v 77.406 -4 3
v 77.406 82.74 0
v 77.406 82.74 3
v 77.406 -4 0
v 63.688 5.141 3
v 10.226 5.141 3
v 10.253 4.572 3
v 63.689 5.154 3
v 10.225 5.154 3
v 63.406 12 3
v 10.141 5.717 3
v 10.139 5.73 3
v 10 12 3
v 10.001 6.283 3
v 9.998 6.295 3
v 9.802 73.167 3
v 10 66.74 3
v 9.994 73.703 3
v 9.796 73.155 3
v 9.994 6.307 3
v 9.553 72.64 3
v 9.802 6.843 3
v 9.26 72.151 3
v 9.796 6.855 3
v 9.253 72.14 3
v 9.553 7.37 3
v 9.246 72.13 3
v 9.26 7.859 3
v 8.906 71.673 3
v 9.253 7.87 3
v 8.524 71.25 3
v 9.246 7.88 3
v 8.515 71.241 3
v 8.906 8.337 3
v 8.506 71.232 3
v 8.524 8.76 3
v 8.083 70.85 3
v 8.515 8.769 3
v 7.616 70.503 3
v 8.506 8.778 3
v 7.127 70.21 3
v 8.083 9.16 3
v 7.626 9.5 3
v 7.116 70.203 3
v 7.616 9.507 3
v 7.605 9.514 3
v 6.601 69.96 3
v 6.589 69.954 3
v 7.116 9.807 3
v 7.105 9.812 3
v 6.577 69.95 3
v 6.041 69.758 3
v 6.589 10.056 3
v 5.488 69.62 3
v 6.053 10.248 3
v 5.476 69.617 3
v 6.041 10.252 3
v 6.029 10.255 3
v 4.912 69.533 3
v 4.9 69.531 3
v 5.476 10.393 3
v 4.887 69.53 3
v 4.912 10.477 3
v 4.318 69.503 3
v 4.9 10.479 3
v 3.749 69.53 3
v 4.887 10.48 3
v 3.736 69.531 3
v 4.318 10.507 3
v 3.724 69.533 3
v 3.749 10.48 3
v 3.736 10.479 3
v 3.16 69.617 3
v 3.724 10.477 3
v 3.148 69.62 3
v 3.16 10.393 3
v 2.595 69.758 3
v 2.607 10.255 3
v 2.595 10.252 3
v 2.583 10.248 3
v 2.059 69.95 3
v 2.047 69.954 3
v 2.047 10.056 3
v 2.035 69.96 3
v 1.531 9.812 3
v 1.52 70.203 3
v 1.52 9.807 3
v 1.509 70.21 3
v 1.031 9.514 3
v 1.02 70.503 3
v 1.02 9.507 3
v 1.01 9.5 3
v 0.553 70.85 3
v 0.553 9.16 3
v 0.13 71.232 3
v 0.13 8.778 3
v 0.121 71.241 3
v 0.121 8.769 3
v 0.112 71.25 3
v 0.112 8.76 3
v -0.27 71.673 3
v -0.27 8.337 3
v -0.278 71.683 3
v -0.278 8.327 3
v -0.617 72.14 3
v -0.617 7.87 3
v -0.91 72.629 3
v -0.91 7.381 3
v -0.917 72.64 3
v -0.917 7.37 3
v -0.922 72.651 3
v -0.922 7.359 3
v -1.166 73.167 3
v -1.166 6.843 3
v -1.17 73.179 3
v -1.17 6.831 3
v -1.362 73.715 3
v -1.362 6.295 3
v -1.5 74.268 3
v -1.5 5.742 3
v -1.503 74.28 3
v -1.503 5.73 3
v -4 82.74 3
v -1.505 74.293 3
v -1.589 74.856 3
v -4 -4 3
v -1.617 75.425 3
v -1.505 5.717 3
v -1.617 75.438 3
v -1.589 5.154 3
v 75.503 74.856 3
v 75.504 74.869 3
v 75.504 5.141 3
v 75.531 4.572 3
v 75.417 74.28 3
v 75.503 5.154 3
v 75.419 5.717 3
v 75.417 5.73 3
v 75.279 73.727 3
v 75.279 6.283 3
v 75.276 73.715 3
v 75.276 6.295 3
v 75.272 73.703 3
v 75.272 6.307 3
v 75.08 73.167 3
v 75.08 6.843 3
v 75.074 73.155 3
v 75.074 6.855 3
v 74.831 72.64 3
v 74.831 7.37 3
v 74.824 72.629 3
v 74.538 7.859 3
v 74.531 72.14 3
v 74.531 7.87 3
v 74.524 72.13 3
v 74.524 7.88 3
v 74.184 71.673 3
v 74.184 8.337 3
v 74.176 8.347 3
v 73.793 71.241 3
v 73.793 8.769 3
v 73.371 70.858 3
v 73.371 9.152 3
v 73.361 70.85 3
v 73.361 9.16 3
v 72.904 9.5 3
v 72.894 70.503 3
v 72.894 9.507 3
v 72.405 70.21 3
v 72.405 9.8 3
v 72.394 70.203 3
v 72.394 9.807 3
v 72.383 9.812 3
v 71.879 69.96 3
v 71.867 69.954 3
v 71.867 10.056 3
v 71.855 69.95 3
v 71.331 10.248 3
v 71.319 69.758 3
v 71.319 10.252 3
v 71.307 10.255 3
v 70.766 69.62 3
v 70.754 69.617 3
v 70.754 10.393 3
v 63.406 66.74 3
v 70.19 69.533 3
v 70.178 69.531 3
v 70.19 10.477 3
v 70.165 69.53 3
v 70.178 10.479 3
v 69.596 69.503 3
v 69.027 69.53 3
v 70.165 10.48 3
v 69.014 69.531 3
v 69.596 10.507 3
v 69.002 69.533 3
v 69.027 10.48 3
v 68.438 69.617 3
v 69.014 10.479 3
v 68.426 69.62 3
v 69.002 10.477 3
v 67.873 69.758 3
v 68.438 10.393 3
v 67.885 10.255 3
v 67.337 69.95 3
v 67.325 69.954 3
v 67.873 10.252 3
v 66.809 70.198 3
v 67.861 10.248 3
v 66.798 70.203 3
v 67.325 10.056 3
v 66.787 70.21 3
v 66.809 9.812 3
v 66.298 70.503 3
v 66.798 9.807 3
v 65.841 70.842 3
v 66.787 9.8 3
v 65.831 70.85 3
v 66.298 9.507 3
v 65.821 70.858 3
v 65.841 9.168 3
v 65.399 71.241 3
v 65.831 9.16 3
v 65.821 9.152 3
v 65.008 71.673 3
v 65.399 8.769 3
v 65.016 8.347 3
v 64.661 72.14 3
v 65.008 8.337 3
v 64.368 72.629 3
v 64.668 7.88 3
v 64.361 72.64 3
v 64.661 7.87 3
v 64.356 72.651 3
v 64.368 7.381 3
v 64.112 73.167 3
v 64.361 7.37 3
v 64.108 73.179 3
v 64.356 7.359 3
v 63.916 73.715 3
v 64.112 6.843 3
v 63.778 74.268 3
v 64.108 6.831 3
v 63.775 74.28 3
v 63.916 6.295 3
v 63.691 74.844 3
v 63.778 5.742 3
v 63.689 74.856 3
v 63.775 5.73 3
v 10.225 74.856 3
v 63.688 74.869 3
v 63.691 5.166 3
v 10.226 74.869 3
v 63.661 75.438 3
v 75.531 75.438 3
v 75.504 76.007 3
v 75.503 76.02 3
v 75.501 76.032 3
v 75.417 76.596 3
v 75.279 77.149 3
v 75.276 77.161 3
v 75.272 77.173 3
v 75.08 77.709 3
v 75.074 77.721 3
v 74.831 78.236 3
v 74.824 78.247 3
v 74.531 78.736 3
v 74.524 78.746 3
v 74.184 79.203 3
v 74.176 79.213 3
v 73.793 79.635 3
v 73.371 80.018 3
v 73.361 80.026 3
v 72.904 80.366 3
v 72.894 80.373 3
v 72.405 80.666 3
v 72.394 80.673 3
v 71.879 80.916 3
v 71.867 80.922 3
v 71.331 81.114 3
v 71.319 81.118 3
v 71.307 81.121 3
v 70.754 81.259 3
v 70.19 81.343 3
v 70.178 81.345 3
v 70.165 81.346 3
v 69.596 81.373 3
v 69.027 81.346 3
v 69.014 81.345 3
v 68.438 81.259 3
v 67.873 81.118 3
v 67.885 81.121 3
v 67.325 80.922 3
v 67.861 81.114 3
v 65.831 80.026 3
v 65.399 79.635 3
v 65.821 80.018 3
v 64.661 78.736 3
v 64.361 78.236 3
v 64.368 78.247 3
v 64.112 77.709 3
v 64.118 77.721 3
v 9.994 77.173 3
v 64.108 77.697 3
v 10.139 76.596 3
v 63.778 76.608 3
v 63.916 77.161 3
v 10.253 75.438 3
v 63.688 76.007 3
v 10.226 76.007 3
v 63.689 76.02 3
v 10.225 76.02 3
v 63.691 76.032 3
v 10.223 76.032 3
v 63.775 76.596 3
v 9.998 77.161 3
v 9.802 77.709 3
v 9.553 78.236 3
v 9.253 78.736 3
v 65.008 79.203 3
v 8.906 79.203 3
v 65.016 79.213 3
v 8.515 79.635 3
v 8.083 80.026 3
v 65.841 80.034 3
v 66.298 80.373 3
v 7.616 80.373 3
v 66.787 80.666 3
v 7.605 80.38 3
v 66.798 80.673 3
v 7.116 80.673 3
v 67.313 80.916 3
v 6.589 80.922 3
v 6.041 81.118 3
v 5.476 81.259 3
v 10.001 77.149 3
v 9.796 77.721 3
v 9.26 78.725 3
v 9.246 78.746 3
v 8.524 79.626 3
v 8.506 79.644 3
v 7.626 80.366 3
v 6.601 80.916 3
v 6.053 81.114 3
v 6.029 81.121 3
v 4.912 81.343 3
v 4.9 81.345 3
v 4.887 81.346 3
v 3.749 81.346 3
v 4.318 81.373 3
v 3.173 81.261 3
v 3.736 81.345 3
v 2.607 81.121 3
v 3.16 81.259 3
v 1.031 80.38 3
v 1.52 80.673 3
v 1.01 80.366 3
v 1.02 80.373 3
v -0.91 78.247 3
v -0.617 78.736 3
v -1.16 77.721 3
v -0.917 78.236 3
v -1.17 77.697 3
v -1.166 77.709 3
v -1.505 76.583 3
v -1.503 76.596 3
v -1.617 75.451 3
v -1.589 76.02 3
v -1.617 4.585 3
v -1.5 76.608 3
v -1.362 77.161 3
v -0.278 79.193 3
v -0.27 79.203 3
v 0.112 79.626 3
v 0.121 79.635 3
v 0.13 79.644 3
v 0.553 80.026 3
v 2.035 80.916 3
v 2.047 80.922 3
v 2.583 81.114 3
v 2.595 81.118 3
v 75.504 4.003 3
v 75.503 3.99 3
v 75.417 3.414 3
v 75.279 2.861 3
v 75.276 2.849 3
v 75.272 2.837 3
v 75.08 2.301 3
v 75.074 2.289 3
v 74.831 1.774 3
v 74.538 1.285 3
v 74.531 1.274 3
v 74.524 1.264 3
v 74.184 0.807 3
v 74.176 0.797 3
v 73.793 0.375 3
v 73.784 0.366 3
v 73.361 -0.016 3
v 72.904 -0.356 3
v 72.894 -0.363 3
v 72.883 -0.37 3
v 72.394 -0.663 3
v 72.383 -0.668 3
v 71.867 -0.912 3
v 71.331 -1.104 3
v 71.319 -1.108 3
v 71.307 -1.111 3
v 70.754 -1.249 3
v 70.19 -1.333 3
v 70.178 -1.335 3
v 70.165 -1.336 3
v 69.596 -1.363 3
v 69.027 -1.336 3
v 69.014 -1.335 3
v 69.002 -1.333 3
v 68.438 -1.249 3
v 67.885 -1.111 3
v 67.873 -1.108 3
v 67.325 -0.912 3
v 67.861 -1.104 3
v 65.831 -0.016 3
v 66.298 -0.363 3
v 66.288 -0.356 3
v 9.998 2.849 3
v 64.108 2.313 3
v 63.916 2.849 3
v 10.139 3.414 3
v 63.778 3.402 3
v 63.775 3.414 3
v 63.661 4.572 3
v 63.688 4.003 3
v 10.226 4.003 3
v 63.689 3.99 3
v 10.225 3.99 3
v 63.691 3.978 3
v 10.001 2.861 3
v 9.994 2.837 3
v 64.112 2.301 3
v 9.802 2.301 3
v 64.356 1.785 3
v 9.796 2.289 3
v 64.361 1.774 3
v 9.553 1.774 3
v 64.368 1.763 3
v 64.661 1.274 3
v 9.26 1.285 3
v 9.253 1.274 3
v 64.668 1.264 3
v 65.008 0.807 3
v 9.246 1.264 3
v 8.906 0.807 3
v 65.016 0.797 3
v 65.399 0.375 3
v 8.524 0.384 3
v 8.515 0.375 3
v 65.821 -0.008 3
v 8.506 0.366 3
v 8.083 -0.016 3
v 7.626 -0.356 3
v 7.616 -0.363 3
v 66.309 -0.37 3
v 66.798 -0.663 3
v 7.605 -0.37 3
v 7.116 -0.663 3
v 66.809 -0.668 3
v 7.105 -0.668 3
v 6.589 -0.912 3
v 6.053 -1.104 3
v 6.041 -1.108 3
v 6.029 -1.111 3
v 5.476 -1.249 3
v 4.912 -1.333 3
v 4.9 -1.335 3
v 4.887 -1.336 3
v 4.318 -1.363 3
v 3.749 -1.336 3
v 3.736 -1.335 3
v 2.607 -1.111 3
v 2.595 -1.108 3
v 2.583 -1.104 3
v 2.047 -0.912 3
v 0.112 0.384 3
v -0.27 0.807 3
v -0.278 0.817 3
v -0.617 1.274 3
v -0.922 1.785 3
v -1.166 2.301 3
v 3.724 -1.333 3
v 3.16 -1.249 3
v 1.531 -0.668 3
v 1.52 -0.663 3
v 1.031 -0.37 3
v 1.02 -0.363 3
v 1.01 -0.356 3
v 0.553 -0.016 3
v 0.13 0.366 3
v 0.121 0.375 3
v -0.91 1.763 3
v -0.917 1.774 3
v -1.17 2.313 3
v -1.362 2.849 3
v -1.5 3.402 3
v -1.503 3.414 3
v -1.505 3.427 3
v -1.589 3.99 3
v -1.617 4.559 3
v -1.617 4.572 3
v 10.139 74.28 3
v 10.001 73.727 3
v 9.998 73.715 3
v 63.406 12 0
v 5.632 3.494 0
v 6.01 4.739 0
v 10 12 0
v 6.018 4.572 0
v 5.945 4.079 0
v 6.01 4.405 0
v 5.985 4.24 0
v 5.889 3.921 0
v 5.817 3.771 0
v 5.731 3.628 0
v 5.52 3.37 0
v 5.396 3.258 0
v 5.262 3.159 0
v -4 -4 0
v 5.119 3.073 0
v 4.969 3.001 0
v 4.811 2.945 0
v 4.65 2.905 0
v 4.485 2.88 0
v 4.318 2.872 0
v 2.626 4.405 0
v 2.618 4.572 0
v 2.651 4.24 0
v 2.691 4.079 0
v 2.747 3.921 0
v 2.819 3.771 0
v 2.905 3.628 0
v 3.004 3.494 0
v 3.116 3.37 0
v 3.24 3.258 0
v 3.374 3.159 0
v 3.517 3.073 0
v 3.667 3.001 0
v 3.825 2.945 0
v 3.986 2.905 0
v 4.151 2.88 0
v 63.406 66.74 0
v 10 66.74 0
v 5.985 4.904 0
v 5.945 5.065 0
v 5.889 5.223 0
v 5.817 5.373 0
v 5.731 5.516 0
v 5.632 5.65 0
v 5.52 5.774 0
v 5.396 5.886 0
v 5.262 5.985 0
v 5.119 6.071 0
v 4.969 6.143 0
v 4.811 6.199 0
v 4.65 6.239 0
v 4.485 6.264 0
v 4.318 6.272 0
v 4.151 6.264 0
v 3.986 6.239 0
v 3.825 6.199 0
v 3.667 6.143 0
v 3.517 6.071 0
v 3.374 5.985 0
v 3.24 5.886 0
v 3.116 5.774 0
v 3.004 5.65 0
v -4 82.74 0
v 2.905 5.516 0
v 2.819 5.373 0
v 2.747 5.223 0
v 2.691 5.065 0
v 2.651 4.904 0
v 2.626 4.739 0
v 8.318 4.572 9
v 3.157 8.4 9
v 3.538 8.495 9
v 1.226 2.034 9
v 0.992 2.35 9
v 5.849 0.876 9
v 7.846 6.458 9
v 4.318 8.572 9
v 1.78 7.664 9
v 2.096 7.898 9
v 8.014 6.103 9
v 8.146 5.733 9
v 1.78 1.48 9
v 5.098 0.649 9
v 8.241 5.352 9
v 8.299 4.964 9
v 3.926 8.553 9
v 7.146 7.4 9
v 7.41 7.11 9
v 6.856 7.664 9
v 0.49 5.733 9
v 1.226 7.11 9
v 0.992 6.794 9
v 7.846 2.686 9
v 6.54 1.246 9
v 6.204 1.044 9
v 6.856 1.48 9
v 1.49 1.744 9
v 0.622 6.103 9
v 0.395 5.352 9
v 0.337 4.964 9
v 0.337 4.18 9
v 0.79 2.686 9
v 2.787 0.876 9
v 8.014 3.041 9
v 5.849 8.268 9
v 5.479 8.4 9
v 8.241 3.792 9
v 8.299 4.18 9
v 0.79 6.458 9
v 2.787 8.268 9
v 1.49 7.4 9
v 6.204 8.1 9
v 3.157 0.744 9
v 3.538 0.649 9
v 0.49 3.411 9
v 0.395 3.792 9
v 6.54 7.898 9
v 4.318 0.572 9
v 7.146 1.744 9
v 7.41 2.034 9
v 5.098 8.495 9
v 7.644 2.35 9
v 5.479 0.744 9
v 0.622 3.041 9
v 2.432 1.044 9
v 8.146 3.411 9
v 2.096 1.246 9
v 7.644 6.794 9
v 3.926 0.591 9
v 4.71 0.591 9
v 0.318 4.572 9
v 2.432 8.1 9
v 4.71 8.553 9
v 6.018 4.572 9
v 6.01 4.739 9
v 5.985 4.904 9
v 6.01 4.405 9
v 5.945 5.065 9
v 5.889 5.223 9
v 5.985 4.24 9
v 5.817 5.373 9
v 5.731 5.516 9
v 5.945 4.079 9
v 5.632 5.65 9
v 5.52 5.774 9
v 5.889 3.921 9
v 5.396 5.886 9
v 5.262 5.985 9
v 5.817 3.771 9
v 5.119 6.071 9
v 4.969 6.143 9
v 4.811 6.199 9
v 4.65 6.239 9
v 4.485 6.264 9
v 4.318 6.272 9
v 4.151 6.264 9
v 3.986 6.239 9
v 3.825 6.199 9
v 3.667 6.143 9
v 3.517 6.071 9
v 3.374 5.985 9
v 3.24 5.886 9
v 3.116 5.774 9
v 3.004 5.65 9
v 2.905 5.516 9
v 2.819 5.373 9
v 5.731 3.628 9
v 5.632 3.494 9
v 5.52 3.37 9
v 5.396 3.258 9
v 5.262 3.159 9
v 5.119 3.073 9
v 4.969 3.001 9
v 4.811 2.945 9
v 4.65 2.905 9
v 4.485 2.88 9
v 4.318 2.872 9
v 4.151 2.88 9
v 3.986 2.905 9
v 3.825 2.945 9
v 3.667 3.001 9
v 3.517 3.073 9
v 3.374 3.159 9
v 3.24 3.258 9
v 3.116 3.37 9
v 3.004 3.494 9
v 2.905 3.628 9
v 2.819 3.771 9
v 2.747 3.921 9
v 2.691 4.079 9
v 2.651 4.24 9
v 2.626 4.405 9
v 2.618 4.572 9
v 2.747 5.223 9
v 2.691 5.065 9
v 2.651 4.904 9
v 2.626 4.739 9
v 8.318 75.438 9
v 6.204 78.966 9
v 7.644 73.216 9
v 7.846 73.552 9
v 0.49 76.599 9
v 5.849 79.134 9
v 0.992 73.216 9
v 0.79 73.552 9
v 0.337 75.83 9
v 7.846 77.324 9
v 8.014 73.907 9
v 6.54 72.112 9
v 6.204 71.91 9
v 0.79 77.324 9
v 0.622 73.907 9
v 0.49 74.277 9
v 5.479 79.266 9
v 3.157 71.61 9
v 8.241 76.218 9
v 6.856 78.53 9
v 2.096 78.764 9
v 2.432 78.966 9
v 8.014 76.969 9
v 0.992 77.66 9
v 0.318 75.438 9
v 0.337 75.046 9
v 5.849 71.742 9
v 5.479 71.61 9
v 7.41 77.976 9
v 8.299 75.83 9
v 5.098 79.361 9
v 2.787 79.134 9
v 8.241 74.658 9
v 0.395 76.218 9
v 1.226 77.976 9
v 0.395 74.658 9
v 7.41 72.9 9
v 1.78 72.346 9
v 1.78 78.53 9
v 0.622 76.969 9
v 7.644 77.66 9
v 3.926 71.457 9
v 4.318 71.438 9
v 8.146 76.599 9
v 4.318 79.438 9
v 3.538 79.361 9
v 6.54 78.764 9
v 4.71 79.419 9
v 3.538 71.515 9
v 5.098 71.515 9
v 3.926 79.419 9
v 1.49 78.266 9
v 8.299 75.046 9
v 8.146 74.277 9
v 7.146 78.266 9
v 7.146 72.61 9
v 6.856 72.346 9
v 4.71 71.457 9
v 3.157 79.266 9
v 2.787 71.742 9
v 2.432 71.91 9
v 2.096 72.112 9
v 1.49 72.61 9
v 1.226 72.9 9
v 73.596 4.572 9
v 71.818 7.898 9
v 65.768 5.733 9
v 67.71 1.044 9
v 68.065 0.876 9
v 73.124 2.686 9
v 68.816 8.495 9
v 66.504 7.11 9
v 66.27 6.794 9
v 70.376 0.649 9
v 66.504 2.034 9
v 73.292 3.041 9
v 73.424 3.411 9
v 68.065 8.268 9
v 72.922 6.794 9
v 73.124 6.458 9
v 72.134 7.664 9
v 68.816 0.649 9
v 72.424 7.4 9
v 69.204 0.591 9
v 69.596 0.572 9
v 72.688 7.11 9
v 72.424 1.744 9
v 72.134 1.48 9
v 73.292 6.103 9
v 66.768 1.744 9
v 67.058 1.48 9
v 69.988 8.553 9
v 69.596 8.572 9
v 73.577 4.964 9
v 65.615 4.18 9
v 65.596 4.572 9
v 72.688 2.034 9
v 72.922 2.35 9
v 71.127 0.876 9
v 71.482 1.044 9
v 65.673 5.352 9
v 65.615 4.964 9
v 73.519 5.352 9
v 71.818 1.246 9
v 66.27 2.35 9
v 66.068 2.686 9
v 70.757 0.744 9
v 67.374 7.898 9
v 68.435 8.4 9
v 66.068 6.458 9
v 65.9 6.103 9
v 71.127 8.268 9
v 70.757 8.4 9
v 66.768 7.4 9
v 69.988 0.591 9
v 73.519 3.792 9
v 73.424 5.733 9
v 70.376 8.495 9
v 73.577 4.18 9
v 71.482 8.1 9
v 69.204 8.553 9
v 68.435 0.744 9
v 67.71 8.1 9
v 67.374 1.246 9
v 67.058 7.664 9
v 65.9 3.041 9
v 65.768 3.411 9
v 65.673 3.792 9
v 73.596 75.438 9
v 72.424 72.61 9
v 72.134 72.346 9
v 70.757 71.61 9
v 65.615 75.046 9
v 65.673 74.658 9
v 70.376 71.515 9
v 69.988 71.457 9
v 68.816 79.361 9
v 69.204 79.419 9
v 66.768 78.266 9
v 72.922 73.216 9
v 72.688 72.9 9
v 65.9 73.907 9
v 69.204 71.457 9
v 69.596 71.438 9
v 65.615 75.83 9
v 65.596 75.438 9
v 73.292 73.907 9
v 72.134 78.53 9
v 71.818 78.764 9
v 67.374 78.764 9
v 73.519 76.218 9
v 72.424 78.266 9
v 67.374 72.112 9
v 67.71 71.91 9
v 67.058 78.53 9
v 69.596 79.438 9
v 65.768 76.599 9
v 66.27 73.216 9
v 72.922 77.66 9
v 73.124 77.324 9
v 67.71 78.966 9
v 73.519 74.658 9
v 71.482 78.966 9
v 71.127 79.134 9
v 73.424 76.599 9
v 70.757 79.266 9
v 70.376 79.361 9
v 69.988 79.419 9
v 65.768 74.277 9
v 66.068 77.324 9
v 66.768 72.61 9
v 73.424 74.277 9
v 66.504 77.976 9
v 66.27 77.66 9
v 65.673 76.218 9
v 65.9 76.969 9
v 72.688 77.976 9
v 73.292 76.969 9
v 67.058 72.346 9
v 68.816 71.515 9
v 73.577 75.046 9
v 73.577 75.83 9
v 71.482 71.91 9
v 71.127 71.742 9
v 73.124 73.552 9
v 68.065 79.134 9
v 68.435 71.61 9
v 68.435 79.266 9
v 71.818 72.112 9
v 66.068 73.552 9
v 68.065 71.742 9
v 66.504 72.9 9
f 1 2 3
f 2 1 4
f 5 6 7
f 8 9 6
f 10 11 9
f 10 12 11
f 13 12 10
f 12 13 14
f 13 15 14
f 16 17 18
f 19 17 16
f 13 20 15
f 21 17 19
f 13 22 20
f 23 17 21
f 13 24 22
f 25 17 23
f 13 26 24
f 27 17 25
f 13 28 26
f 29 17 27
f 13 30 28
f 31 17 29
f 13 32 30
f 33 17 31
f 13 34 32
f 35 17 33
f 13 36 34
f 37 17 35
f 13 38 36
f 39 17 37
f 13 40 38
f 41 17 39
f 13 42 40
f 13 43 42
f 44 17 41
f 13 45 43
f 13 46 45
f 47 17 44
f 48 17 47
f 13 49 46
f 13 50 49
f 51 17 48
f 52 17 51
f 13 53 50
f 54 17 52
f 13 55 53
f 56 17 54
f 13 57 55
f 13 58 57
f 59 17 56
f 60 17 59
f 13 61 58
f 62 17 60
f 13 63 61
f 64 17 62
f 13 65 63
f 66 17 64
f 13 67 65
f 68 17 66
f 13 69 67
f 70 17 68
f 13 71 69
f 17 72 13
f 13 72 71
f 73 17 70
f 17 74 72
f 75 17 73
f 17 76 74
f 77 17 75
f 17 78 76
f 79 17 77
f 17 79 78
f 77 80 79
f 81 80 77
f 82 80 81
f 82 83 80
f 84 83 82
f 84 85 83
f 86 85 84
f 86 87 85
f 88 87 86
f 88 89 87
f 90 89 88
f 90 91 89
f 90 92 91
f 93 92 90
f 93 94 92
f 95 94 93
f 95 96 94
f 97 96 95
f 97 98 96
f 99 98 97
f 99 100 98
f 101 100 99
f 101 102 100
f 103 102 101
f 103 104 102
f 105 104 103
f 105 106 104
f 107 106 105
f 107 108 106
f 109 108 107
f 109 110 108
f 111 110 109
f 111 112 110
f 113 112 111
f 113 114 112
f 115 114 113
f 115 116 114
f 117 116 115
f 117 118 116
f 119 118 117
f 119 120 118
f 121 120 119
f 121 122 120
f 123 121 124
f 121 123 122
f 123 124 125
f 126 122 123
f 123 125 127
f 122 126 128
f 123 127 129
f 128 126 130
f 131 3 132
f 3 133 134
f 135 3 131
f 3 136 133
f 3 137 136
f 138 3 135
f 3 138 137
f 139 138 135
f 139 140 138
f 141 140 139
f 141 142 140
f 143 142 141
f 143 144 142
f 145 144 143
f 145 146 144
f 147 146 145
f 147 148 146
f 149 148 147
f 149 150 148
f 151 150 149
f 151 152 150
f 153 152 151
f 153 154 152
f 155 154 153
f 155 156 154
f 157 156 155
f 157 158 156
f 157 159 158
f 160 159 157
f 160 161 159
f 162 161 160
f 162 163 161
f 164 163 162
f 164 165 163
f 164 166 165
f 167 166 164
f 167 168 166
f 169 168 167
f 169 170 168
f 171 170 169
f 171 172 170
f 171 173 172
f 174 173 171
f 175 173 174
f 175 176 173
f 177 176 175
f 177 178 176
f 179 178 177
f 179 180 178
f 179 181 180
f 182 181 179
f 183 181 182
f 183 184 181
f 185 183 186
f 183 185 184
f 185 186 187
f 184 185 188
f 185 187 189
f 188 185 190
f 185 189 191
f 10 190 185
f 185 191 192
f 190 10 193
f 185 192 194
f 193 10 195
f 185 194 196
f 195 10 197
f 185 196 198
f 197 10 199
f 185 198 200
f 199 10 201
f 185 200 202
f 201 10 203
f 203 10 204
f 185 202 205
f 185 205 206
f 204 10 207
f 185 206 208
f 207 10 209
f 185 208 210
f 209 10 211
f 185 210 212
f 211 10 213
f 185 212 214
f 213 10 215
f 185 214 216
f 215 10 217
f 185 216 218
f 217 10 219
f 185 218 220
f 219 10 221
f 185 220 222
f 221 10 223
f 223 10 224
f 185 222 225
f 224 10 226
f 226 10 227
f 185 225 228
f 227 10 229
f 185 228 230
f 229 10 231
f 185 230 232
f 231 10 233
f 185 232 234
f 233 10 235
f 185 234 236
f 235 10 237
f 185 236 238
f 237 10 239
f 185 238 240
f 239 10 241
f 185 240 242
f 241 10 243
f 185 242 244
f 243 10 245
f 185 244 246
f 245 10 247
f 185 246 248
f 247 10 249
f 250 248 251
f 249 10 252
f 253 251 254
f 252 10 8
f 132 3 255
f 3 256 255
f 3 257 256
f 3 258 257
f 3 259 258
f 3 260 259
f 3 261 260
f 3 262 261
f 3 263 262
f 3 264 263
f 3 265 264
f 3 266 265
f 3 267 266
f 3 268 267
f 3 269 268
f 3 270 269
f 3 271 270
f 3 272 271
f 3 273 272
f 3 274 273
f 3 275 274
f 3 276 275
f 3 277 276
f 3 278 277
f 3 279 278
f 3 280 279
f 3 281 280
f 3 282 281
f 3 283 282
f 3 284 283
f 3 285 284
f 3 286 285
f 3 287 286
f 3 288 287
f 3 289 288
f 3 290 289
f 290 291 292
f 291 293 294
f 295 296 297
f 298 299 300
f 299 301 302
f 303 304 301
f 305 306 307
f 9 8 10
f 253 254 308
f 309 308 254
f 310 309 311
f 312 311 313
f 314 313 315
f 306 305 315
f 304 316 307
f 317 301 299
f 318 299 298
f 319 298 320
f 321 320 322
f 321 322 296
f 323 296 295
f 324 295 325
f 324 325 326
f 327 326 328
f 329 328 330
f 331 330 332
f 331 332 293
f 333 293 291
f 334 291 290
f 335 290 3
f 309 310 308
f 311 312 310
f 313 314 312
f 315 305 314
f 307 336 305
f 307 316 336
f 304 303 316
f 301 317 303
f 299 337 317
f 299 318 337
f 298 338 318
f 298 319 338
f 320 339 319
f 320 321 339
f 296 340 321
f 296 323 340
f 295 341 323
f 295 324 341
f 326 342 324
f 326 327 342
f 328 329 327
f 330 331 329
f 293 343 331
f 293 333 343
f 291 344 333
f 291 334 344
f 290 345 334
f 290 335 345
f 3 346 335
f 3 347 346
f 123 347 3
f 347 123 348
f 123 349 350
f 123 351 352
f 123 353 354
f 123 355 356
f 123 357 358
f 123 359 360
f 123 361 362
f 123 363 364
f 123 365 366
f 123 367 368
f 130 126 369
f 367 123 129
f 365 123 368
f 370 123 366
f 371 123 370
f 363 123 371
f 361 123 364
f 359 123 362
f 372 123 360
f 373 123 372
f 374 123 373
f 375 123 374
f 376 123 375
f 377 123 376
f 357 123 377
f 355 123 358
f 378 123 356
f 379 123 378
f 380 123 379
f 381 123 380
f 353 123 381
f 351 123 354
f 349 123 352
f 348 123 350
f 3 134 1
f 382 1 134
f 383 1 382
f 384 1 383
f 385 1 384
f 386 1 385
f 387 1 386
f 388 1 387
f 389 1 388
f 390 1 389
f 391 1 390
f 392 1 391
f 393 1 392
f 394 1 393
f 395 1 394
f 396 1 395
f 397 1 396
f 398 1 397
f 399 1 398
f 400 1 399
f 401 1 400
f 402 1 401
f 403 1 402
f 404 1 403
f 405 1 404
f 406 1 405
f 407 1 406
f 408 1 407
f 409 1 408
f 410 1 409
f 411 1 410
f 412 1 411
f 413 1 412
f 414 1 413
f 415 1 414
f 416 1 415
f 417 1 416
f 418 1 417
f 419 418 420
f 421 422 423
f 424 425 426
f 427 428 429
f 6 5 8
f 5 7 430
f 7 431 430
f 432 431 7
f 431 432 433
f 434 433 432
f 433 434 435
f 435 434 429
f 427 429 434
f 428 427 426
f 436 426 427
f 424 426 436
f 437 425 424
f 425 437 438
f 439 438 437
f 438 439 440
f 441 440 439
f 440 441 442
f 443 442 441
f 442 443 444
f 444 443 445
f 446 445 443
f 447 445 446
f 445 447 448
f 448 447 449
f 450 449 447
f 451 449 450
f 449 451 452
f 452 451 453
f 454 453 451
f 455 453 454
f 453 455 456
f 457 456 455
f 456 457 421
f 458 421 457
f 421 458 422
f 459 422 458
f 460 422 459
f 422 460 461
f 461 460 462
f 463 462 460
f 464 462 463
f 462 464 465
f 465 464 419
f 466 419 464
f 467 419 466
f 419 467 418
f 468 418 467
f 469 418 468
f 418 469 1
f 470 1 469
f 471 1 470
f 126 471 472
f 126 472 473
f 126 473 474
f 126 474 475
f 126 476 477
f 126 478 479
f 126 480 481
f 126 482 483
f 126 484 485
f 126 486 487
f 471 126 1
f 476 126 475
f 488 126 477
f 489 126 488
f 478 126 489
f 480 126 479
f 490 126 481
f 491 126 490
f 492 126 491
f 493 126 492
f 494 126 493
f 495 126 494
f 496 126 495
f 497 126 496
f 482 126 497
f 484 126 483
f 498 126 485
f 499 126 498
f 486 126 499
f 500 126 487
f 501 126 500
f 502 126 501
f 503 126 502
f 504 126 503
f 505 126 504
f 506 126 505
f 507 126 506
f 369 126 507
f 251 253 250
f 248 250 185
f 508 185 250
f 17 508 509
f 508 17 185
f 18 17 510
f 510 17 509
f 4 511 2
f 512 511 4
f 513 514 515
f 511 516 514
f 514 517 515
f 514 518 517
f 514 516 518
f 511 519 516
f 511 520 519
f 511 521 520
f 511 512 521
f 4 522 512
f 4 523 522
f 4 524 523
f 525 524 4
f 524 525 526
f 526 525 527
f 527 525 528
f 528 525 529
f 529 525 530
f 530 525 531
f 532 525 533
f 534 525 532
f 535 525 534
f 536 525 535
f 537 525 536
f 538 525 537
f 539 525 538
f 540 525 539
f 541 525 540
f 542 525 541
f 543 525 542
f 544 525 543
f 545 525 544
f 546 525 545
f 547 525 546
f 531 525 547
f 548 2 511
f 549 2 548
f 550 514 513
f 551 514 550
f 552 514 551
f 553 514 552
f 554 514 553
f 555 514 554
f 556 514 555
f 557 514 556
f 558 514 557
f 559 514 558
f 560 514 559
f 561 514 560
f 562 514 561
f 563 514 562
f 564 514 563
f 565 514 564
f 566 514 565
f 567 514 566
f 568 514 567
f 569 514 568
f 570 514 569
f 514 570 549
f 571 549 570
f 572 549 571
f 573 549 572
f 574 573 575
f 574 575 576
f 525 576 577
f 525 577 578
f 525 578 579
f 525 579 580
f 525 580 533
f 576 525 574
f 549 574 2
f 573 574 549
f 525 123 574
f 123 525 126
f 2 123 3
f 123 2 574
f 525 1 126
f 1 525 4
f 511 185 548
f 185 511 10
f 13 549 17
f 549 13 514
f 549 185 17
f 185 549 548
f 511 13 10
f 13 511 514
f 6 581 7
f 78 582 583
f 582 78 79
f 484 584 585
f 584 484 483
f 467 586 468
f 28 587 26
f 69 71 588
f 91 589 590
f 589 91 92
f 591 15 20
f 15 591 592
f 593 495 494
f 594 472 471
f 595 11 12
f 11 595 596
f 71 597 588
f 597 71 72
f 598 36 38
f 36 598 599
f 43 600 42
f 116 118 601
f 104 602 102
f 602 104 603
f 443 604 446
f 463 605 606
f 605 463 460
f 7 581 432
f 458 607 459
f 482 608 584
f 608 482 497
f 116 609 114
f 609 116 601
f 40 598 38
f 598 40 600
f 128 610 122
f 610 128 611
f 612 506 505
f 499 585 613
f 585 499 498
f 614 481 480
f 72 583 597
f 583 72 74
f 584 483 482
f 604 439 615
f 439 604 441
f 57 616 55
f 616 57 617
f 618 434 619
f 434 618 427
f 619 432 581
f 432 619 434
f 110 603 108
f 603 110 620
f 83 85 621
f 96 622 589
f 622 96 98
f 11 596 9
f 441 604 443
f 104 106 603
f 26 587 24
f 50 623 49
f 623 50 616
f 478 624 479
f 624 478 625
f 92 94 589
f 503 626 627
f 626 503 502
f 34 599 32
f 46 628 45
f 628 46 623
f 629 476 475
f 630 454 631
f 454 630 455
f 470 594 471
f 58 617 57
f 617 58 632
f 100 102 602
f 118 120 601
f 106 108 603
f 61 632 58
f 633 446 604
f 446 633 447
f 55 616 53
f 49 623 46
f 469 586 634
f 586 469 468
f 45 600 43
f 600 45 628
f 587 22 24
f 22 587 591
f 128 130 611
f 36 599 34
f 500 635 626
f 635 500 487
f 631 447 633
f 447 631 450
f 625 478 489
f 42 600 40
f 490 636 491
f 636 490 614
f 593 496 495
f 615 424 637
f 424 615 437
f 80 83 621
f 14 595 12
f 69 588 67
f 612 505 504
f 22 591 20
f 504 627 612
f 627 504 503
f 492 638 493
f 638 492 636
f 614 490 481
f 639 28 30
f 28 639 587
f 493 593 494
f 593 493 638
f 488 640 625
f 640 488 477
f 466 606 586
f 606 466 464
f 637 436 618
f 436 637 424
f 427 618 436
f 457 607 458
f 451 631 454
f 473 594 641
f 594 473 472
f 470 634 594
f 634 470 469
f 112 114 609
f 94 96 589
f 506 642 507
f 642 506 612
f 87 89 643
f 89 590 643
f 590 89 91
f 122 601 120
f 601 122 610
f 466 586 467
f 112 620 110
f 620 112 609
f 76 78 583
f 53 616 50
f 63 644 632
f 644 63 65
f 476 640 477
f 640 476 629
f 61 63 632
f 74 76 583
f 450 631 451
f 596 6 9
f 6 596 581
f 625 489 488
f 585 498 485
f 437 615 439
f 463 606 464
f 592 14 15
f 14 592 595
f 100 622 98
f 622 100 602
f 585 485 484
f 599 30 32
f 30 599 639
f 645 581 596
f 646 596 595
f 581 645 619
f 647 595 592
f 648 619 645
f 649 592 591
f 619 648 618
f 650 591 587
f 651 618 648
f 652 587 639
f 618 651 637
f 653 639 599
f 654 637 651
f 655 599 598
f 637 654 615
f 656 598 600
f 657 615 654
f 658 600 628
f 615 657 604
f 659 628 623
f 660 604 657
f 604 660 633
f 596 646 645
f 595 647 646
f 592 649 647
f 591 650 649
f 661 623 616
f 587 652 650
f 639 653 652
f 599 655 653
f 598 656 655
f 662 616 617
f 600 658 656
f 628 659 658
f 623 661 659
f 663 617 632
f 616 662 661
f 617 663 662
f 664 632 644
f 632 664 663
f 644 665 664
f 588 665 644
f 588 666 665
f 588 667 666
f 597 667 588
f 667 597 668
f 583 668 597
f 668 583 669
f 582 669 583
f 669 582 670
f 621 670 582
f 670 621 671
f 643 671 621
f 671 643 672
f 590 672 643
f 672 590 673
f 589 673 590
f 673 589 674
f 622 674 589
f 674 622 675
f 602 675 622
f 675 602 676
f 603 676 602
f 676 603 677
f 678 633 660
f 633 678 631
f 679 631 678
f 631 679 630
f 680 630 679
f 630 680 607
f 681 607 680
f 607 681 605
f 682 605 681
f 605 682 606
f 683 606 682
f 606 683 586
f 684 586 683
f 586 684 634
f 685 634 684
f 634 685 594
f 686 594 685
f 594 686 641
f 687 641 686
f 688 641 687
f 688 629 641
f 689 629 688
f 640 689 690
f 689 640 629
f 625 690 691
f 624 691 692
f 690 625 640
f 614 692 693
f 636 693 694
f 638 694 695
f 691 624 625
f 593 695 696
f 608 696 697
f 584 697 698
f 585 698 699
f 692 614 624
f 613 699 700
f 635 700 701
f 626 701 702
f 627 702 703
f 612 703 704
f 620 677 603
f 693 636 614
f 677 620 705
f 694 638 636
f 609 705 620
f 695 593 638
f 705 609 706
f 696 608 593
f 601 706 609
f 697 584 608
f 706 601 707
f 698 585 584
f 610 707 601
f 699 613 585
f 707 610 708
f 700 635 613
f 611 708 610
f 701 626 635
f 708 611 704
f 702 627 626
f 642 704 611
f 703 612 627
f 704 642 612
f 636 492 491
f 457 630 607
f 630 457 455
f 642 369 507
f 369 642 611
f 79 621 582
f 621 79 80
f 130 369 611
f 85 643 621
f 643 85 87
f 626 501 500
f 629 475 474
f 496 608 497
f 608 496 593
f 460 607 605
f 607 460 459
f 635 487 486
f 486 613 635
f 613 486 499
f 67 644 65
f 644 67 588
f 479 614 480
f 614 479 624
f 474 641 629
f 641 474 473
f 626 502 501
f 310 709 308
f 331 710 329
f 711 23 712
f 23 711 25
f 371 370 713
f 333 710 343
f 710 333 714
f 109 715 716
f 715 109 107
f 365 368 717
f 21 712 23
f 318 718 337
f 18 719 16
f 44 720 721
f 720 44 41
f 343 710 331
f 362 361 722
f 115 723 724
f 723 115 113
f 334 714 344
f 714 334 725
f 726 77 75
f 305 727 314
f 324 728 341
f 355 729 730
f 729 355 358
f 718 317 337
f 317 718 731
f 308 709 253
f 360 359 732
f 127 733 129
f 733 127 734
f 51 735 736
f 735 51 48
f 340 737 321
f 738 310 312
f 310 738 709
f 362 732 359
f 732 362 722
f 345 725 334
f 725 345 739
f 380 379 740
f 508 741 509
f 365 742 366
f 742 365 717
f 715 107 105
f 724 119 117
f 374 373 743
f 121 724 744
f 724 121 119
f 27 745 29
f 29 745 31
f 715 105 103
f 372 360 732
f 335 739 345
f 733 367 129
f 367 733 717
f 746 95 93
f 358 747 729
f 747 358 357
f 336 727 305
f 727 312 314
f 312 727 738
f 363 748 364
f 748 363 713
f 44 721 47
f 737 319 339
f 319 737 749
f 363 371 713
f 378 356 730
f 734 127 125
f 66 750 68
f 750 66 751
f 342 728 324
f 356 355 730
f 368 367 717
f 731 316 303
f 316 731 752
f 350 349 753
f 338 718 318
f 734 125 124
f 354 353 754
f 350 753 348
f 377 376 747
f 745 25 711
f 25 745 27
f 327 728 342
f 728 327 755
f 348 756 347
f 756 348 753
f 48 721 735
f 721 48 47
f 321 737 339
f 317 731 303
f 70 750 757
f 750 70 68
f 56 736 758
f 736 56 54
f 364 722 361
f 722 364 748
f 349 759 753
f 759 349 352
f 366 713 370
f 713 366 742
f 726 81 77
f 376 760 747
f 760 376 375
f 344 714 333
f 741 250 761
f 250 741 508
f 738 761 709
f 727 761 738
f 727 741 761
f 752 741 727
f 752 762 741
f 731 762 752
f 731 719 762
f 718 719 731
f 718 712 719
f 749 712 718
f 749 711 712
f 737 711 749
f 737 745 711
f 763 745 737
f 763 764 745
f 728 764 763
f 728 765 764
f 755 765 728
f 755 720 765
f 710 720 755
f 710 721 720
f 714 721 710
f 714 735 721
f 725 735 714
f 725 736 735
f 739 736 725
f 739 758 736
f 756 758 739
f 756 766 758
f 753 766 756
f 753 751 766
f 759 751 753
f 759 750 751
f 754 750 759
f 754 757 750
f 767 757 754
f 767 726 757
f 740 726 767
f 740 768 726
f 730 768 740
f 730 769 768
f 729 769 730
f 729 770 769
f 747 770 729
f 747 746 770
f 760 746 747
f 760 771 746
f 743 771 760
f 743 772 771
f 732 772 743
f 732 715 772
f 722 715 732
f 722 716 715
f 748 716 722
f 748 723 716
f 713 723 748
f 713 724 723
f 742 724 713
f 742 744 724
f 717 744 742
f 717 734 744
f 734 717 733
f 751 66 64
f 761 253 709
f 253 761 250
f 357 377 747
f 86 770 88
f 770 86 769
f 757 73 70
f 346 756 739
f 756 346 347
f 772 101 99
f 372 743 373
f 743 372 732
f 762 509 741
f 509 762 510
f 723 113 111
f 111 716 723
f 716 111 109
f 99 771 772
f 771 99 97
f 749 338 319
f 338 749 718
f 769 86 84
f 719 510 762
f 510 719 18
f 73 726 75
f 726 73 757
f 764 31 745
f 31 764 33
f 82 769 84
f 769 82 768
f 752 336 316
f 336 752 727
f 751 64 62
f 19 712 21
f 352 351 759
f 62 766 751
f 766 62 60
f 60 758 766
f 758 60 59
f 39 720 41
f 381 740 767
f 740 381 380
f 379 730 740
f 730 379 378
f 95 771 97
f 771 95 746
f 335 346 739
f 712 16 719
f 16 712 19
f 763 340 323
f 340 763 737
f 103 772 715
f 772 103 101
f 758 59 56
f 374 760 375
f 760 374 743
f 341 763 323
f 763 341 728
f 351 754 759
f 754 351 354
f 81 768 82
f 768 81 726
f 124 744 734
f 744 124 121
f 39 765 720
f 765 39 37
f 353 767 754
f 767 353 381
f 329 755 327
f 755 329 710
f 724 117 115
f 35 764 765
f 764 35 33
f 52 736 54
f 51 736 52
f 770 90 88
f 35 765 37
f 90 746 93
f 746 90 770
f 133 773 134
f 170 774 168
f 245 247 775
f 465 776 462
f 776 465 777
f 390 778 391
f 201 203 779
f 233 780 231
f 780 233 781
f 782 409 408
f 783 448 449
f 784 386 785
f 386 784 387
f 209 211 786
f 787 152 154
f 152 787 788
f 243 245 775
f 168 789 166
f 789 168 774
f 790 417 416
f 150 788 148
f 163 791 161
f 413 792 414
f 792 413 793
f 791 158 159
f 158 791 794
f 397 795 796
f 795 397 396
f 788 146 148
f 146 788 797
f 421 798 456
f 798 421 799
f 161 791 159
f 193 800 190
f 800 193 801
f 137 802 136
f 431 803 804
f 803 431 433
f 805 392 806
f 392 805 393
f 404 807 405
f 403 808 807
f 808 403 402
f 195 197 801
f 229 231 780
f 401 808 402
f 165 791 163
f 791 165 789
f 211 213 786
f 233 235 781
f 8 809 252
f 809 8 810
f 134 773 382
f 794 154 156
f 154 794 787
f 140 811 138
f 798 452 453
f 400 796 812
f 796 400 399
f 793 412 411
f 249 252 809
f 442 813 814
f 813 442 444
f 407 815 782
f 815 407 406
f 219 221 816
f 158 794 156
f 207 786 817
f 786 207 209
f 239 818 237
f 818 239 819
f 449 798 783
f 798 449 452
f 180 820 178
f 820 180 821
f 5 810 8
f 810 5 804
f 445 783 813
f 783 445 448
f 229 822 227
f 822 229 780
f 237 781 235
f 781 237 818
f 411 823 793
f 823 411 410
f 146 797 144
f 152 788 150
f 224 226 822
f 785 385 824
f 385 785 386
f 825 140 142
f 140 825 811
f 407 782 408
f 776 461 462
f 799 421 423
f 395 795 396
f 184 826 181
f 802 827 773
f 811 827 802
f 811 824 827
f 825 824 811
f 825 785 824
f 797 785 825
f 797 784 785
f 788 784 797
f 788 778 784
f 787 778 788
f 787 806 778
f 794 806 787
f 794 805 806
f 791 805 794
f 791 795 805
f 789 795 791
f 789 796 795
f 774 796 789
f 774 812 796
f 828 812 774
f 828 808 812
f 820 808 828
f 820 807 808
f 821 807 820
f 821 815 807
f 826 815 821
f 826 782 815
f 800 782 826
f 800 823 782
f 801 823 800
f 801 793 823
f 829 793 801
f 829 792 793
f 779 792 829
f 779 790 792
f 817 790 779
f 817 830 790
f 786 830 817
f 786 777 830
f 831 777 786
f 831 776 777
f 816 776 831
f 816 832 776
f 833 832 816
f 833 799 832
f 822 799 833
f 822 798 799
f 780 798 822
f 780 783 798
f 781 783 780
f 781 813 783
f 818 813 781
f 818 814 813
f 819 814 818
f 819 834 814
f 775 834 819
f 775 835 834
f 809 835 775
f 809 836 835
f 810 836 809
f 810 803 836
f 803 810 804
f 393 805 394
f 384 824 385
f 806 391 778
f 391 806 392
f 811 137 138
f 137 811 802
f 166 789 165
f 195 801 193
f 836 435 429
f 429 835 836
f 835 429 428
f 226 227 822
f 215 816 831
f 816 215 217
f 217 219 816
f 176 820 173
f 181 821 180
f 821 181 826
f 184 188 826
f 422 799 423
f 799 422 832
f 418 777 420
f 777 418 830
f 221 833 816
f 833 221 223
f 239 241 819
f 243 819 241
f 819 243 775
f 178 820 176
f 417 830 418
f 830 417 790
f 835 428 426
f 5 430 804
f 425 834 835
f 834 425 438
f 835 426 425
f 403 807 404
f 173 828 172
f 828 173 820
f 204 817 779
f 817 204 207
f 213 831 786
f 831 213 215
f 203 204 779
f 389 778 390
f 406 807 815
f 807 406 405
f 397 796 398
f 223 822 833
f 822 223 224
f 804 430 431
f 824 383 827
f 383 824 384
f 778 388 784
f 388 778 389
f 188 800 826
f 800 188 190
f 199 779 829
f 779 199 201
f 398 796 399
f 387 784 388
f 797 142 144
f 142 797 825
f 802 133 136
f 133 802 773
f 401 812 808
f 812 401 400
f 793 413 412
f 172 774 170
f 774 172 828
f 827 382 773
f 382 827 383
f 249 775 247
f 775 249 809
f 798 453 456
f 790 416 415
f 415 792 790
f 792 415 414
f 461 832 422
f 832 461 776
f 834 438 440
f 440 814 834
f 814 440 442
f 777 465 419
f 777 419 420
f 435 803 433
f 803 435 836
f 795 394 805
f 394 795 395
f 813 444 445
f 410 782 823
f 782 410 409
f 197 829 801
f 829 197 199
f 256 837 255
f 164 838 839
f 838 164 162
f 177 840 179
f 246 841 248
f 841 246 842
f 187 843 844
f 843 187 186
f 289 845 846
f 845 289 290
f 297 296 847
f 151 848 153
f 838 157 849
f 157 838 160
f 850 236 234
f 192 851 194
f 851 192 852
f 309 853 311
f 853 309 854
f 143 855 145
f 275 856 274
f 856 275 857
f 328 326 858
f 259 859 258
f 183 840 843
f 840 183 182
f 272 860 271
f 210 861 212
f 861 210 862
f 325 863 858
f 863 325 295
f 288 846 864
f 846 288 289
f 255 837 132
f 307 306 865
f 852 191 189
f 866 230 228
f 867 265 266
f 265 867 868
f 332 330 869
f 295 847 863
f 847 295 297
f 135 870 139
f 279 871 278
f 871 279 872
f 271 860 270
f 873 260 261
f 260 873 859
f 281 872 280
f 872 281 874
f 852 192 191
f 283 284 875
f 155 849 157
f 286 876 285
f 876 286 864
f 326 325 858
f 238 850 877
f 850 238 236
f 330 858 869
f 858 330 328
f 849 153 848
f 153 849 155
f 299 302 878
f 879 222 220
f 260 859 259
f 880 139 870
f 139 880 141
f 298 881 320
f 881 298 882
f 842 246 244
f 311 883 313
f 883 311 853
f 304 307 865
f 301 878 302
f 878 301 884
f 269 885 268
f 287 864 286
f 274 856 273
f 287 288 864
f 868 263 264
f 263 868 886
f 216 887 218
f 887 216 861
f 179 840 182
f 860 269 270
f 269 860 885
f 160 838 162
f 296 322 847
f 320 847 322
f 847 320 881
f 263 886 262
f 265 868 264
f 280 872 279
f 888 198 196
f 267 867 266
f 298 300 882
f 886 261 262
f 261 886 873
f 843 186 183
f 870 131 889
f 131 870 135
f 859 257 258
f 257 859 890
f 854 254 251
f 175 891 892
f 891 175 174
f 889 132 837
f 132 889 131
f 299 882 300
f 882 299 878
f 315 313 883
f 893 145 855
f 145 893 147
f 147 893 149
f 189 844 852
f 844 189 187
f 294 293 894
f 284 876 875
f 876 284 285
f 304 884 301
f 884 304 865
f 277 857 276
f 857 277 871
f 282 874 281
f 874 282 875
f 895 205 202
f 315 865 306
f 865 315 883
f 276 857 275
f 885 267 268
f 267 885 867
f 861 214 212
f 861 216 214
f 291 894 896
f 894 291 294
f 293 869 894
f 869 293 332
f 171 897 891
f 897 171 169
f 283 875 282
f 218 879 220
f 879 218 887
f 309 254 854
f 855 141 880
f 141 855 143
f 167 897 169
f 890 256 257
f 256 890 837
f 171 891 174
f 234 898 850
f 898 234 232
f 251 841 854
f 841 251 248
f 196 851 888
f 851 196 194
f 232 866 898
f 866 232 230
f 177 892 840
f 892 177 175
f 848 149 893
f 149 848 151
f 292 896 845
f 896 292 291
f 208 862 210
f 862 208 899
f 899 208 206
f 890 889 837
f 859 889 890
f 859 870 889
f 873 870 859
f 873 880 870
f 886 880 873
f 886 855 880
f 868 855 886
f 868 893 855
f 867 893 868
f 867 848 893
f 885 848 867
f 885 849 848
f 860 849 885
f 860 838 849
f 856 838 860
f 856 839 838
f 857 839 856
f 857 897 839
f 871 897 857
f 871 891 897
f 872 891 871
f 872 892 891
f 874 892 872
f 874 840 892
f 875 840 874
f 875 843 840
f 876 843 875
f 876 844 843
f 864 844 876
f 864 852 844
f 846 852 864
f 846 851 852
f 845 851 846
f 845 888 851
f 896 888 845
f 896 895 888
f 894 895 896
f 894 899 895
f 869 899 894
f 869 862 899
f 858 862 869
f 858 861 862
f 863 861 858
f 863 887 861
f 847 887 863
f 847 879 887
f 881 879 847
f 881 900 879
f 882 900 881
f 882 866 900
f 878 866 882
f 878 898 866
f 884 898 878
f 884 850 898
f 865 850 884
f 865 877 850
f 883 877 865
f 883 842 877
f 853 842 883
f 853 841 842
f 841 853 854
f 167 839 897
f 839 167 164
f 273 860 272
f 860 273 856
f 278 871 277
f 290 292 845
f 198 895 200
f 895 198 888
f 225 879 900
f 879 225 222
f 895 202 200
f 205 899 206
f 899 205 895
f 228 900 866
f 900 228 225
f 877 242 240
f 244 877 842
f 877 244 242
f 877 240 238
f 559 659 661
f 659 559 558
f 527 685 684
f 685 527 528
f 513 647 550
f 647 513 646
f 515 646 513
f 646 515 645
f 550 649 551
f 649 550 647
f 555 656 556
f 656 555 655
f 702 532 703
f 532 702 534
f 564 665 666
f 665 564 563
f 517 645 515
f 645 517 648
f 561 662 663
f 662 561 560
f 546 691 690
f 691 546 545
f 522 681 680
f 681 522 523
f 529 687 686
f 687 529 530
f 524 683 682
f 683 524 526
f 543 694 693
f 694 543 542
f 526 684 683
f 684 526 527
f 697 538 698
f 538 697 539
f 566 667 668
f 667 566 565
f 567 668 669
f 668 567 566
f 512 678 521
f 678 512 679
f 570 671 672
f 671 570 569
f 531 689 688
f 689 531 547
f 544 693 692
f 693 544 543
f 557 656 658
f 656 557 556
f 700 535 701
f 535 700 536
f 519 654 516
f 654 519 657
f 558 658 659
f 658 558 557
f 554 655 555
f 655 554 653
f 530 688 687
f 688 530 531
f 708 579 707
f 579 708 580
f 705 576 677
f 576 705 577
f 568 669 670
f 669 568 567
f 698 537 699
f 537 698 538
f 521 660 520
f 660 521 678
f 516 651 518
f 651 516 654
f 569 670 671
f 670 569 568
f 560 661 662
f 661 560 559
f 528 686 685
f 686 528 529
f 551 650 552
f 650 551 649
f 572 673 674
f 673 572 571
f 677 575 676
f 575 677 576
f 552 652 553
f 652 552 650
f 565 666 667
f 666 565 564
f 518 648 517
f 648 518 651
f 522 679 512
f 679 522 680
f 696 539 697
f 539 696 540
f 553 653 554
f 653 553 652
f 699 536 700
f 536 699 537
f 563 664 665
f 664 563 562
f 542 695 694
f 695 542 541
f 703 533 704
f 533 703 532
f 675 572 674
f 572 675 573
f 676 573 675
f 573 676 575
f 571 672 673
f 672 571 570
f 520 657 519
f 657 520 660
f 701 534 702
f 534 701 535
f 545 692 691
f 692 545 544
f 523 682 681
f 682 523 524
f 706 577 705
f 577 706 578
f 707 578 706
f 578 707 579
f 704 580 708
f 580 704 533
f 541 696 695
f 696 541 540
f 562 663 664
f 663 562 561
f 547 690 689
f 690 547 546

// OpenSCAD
// Units: mm. PCB stand worked example.
difference() {
  union() {
    difference() {
      translate([-4, -4, 0])
        cube([81.406, 86.740, 3]);
      translate([10, 12, -0.1])
        cube([53.406, 54.740, 3.2]);
    }
    translate([4.318, 4.572, 2.8])
      cylinder(h=6.2, d1=12, d2=8, $fn=64);
    translate([4.318, 75.438, 2.8])
      cylinder(h=6.2, d1=12, d2=8, $fn=64);
    translate([69.596, 4.572, 2.8])
      cylinder(h=6.2, d1=12, d2=8, $fn=64);
    translate([69.596, 75.438, 2.8])
      cylinder(h=6.2, d1=12, d2=8, $fn=64);
  }
  translate([4.318, 4.572, -0.1])
    cylinder(h=9.2, d=3.4, $fn=64);
}
